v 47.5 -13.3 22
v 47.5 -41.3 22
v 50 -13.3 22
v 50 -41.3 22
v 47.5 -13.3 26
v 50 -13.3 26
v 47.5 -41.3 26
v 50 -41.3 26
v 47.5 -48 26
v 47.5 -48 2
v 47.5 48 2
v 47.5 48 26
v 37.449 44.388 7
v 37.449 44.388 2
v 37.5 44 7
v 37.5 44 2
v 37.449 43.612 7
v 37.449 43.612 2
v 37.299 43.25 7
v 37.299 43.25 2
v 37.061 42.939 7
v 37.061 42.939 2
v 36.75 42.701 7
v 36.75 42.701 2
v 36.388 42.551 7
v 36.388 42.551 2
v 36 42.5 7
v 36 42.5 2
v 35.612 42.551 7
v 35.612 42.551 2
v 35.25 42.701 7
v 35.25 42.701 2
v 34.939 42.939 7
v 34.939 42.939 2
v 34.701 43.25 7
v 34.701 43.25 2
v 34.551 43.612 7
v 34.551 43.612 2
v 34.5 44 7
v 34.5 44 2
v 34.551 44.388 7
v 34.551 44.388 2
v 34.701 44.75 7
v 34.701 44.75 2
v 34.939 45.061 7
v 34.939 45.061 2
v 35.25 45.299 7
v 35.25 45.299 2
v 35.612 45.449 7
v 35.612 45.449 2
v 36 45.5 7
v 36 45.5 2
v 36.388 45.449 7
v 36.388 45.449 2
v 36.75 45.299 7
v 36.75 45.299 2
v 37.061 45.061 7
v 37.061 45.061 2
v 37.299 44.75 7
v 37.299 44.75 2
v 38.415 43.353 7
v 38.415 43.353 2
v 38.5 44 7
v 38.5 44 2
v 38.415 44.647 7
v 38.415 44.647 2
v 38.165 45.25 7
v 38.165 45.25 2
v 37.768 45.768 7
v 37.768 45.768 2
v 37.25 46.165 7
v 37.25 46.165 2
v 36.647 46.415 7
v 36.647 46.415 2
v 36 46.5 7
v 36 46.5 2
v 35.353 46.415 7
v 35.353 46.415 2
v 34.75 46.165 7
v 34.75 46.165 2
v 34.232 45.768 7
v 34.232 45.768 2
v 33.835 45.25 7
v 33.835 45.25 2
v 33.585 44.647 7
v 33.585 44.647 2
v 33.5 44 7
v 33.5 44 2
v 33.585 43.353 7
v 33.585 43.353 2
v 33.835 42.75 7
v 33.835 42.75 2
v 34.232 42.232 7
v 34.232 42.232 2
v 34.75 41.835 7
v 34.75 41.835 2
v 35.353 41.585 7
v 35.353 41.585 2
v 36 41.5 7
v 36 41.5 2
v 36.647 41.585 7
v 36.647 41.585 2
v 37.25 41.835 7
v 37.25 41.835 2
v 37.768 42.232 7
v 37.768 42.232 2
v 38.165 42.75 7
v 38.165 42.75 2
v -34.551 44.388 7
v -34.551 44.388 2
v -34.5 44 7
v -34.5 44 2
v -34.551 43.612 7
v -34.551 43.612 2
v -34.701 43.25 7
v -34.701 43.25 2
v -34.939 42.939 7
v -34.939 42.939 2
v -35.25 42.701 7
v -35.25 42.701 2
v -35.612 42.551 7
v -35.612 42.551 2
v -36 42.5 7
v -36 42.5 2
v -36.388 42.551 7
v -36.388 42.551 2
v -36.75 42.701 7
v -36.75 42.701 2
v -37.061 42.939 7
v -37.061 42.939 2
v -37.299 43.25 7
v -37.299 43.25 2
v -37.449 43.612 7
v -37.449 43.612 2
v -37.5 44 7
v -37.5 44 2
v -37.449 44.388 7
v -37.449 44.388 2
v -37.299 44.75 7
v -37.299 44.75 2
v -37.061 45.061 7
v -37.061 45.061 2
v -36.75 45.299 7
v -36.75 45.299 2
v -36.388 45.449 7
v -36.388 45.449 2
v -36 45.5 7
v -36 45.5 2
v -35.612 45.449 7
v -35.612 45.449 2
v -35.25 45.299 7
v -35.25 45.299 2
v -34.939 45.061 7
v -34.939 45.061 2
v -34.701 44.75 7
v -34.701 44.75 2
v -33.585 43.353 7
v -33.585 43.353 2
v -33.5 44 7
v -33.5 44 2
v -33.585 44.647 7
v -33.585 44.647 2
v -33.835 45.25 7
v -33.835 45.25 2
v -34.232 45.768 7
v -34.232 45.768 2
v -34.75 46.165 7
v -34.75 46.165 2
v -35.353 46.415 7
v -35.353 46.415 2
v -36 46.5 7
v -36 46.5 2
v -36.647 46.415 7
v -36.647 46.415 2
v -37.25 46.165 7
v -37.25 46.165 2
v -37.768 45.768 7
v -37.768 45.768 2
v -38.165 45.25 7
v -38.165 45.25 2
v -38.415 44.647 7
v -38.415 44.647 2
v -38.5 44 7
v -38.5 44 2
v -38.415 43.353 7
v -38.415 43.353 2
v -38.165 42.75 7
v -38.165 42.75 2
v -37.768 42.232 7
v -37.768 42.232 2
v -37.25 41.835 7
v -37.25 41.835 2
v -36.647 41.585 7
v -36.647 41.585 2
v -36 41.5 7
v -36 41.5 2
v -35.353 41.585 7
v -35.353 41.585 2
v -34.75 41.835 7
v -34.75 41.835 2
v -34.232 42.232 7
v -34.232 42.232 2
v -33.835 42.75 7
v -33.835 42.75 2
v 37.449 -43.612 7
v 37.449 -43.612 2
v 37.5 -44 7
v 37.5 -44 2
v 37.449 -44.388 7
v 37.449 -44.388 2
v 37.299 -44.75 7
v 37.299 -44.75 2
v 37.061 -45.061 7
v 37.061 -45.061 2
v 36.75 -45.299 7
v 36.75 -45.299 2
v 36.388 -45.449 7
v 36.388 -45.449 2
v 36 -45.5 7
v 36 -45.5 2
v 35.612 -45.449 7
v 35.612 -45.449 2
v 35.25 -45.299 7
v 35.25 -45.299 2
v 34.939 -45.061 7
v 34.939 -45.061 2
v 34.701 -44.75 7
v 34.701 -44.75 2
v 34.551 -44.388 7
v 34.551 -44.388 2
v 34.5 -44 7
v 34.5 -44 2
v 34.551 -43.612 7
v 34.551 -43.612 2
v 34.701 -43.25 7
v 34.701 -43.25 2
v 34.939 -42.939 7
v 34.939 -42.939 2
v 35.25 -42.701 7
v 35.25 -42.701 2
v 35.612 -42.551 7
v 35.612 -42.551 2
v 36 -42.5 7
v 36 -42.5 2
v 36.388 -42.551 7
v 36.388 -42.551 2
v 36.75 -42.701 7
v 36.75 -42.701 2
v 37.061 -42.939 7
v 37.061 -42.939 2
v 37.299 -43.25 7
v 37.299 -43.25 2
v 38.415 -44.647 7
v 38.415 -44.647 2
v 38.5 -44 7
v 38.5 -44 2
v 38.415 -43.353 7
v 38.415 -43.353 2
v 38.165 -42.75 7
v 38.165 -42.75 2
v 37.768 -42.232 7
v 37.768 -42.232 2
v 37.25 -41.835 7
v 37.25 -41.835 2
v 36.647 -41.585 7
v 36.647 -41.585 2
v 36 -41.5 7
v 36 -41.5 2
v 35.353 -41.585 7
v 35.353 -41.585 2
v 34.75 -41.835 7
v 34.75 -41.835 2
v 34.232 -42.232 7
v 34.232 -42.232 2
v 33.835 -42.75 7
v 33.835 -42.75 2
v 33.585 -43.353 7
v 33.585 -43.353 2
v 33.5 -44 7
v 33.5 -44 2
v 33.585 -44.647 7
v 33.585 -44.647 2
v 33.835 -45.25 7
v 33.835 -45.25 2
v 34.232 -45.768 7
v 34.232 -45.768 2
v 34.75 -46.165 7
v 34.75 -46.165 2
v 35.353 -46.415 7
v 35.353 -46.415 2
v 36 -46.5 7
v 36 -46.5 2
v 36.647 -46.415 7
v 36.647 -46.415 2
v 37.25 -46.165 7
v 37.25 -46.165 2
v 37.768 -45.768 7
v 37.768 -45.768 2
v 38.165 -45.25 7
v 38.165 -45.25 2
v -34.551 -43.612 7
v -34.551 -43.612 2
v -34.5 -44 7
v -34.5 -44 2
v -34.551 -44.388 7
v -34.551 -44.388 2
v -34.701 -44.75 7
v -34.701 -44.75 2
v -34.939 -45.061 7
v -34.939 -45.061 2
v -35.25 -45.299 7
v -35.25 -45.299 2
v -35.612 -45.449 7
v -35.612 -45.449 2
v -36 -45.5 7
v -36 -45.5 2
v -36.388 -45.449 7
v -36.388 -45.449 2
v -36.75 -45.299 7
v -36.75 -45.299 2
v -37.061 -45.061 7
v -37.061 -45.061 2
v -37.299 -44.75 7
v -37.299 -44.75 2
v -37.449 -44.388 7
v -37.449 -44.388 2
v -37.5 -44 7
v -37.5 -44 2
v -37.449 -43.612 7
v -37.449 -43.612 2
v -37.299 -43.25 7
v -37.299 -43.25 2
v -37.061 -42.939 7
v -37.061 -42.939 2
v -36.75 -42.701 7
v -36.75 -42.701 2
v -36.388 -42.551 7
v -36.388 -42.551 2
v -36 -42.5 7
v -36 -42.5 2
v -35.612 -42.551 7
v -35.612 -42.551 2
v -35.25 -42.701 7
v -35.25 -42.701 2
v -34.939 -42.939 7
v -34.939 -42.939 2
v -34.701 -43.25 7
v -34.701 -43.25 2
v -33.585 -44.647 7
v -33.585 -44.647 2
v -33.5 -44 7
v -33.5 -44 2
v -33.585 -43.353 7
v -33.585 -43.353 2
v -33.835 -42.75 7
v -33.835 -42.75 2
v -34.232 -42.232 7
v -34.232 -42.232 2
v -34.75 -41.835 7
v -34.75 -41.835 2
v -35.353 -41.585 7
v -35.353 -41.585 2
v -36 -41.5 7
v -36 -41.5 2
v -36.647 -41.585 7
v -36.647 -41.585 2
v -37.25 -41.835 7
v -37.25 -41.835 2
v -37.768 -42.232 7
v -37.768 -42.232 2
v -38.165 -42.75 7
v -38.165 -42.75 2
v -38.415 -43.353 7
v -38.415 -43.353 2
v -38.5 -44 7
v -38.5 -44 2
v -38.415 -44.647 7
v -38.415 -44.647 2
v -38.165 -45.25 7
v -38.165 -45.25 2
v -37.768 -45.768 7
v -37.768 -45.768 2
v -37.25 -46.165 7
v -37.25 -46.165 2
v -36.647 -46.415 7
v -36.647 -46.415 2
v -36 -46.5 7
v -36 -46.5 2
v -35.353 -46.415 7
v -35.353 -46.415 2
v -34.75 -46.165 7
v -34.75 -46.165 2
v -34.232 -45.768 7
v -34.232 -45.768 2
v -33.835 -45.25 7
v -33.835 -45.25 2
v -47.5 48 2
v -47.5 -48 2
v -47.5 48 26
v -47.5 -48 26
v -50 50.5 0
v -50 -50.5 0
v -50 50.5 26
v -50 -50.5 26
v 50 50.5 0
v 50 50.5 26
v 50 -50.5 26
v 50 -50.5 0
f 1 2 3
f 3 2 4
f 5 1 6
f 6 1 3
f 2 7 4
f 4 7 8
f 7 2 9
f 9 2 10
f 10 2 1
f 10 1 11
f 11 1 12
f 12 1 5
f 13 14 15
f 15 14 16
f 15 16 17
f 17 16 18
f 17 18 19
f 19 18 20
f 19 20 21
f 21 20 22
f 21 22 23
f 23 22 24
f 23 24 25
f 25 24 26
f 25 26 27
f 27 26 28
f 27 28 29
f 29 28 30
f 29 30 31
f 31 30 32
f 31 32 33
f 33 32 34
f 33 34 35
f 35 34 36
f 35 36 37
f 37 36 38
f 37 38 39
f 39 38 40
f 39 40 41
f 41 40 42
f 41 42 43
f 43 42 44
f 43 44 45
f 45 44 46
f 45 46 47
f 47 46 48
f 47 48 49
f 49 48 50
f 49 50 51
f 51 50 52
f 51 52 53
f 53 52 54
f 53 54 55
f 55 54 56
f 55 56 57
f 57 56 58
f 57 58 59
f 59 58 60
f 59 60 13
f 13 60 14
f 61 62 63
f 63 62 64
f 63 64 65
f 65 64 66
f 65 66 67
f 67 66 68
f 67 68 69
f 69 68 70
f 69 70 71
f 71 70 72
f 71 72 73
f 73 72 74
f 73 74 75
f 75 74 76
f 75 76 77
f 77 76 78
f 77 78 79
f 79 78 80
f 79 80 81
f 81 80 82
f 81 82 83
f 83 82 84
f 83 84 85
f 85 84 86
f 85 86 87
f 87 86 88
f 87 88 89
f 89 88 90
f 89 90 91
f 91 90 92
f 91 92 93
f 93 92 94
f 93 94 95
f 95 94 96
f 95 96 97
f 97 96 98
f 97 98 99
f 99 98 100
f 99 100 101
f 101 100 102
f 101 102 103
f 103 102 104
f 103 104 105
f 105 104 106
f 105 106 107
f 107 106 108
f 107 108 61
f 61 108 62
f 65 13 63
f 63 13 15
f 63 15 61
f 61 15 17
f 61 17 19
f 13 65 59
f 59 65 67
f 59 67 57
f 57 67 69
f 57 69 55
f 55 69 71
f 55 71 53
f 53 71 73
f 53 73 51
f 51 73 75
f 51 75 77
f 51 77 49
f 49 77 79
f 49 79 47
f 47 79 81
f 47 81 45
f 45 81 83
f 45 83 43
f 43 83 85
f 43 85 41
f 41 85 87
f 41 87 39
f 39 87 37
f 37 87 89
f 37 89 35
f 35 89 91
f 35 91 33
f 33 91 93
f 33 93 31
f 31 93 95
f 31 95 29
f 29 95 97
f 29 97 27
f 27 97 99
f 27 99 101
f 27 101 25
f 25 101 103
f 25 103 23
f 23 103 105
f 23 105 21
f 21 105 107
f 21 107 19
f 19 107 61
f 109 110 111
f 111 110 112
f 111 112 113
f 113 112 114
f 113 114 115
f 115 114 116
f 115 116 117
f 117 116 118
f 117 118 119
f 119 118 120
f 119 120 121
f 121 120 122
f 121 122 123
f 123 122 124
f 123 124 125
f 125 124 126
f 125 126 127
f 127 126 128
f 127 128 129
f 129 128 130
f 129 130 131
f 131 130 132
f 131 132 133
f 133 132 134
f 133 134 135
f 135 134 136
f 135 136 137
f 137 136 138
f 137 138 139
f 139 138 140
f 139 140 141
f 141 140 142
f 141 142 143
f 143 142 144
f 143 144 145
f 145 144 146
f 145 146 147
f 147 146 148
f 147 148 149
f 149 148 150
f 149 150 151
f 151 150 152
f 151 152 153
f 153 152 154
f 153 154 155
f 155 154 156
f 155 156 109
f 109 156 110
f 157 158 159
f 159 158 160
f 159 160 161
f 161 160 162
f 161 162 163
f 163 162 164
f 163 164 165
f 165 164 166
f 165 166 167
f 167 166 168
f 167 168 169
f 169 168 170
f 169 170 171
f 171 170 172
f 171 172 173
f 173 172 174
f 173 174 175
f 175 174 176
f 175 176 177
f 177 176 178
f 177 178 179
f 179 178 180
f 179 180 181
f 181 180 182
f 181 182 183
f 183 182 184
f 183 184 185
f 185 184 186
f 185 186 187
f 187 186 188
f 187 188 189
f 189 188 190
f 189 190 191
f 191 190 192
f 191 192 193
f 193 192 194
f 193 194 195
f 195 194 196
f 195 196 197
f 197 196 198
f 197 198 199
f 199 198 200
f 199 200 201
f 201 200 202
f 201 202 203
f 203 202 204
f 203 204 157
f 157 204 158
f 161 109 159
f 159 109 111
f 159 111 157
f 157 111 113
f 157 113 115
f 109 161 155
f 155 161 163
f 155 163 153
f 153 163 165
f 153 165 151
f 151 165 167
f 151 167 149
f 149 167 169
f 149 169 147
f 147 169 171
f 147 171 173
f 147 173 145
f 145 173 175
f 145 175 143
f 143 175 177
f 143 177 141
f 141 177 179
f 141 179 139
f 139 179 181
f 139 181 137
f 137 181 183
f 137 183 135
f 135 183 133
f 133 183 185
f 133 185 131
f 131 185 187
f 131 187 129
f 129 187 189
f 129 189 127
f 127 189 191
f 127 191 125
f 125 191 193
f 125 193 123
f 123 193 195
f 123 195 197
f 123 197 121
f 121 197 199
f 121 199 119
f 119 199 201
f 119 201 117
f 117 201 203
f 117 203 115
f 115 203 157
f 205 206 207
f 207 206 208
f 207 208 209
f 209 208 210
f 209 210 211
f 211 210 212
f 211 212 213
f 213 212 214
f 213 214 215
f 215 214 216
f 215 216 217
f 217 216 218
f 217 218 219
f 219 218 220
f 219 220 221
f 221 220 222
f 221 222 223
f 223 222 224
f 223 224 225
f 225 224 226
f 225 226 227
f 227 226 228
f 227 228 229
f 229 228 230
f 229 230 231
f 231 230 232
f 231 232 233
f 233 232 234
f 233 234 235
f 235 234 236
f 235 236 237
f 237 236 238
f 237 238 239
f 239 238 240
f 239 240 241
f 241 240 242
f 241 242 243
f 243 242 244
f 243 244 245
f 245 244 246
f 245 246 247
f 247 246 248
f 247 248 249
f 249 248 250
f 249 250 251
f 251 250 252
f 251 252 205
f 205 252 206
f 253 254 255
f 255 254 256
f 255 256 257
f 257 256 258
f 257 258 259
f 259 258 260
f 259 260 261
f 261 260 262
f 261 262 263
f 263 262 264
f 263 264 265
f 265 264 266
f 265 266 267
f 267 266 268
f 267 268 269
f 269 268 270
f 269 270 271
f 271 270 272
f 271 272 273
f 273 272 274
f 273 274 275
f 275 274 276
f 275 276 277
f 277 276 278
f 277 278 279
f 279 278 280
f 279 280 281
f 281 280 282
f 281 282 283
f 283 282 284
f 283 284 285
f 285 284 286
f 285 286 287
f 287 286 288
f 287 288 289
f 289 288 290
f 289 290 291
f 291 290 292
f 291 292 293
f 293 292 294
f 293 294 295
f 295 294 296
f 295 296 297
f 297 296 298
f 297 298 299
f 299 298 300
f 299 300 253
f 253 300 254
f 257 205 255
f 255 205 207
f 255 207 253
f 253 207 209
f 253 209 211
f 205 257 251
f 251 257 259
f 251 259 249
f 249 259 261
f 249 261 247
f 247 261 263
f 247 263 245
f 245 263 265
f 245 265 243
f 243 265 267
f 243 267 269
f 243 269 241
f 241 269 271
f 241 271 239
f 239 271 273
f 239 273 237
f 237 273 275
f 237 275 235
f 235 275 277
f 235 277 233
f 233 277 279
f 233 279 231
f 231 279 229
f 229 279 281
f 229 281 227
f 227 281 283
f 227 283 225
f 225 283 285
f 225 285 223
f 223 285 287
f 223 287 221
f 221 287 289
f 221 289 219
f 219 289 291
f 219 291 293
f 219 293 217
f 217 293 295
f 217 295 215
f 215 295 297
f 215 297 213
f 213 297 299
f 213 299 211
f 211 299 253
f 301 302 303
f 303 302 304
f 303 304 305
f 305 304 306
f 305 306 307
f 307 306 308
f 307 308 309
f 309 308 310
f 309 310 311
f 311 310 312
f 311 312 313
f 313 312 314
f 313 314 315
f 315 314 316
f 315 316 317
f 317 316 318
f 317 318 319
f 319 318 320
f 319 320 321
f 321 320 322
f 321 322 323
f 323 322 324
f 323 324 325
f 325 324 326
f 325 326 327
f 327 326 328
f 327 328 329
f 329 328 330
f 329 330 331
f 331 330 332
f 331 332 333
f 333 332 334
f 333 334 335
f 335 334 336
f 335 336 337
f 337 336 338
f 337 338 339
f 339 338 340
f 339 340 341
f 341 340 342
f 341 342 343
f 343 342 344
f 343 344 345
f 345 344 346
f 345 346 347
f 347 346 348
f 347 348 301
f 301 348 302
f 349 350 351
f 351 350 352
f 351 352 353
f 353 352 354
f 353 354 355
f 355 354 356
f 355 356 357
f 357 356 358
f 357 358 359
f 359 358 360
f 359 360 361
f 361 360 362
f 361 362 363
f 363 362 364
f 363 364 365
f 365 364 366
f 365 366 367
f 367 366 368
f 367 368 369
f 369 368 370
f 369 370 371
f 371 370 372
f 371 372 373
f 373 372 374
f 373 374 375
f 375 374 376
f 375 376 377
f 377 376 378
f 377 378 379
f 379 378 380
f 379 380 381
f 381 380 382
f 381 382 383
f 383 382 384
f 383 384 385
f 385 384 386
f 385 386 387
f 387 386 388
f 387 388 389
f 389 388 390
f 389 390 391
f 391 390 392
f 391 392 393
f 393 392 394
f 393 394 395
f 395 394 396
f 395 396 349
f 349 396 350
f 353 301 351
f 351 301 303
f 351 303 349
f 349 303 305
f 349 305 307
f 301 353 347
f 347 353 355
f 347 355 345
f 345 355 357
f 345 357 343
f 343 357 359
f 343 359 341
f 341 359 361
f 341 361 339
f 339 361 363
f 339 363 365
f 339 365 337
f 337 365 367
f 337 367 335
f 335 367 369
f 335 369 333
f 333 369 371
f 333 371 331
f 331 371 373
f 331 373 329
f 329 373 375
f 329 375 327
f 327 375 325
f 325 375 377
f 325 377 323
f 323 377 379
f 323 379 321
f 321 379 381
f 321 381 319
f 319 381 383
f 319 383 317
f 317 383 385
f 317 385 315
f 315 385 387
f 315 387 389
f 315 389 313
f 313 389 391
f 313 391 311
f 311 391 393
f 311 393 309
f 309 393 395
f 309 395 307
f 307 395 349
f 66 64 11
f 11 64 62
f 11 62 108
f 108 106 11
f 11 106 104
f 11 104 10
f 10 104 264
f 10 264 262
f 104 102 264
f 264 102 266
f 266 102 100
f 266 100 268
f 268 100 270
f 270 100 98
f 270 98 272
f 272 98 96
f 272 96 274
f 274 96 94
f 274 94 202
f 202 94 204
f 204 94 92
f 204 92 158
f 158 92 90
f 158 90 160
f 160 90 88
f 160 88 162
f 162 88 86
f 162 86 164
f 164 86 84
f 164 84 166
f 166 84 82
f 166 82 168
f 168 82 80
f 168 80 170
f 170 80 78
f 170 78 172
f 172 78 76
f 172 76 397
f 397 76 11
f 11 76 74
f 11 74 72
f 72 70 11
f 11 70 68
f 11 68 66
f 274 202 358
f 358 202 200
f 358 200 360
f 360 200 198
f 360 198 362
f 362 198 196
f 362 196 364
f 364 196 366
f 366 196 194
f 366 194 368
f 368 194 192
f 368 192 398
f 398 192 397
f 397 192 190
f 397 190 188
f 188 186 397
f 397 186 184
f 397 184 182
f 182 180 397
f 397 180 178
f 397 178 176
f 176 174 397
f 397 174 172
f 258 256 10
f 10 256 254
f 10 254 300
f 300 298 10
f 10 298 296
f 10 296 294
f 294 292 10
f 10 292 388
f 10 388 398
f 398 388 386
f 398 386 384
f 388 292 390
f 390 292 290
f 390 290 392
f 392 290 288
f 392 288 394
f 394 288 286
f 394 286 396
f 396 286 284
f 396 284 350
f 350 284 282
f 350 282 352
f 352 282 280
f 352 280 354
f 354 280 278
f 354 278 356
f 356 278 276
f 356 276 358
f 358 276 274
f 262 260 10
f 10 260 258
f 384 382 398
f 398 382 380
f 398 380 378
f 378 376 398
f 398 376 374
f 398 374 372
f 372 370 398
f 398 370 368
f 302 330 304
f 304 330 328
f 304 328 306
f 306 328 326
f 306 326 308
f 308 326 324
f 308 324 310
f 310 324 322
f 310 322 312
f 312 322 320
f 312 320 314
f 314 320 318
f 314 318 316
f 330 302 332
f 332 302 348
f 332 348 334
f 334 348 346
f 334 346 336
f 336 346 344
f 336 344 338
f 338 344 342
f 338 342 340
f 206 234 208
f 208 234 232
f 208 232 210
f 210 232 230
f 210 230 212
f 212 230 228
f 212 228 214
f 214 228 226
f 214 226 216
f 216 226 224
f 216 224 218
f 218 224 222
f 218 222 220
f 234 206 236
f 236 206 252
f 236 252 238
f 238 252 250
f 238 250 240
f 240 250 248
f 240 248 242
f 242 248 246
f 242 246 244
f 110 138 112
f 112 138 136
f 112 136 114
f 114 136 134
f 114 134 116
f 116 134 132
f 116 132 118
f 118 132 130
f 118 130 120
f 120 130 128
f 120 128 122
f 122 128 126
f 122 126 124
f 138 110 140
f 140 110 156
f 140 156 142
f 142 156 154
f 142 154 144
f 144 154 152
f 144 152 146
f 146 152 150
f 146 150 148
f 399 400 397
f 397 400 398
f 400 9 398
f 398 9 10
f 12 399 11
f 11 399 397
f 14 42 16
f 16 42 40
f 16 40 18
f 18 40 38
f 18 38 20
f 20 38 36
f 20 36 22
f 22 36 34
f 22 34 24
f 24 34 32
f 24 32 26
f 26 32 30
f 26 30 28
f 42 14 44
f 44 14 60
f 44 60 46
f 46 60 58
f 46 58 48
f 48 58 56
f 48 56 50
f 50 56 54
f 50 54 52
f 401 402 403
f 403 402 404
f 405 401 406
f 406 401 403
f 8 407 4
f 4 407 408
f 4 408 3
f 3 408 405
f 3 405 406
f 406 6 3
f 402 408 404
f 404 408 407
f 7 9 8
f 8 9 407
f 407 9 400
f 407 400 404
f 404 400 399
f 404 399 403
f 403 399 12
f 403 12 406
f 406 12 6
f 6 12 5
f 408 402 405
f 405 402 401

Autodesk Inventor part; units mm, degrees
ref_plane "YZ Plane" through (0, 0, 0) normal (1, 0, 0) x (0, 1, 0)
ref_plane "XZ Plane" through (0, 0, 0) normal (0, 1, 0) x (-1, 0, 0)
ref_plane "XY Plane" through (0, 0, 0) normal (0, 0, 1) x (1, 0, 0)
sketch "Esboço1" plane through (0, 0, 0) normal (0, 0, 1) x (1, 0, 0)
  line L0 (-50, 50.5) -> (50, 50.5)
  line L1 (50, 50.5) -> (50, -50.5)
  line L2 (50, -50.5) -> (-50, -50.5)
  line L3 (-50, -50.5) -> (-50, 50.5)
  line L4 (-50, 50.5) -> (50, -50.5) construction
  line L5 (50, 50.5) -> (-50, -50.5) construction
  point P0 (0, 0)
  dimension "d0" = 100
  dimension "d1" = 101
extrude "Base" add sketch "Esboço1" along normal blind 26
sketch "Esboço2" plane through (0, 0, 26) normal (0, 0, 1) x (1, 0, 0)
  line L0 (50, 50.5) -> (-50, 50.5) projected
  line L1 (-50, -50.5) -> (50, -50.5) projected
  line L2 (-50, 50.5) -> (50, 50.5)
  line L3 (50, 50.5) -> (50, -50.5)
  line L4 (50, -50.5) -> (-50, -50.5)
  line L5 (-50, -50.5) -> (-50, 50.5)
  line L6 (47.5, -48) -> (47.5, 48)
  line L7 (47.5, 48) -> (-47.5, 48)
  line L8 (-47.5, 48) -> (-47.5, -48)
  line L9 (-47.5, -48) -> (47.5, -48)
  point P0 (0, 0)
  dimension "d4" = 2.5
extrude "Área" cut sketch "Esboço2" against normal blind 24 contours L9 L8 L7 L6
sketch "Esboço3" plane through (0, 0, 2) normal (0, 0, 1) x (1, 0, 0)
  circle A0 centre (-36, -44) radius 1.5
  line L0 (-50, 50.5) -> (-50, -50.5) projected
  line L1 (-50, -50.5) -> (50, -50.5) projected
  line L2 (-47.5, -48) -> (-47.5, 48) projected
  line L3 (47.5, 48) -> (47.5, -48) projected
  circle A1 centre (-36, 44) radius 1.5
  circle A2 centre (36, -44) radius 1.5
  circle A3 centre (36, 44) radius 1.5
  circle A4 centre (-36, -44) radius 2.5
  line L4 (47.5, -48) -> (-47.5, -48) projected
  line L5 (-47.5, 48) -> (47.5, 48) projected
  circle A5 centre (-36, 44) radius 2.5
  circle A6 centre (36, -44) radius 2.5
  circle A7 centre (36, 44) radius 2.5
  dimension "d11" = 3
  dimension "d12" = 14
  dimension "d13" = 6.5
  dimension "d14" = 5
extrude "Extrusão3" add sketch "Esboço3" along normal blind 5 contours A4 | A5 | A6 | A7
sketch "Esboço4" plane through (50, -50.5, 0) normal (1, 0, 0) x (0, 0, -1)
  line L0 (-26, 9.2) -> (-22, 9.2)
  line L1 (-22, 9.2) -> (-22, 37.2)
  line L2 (-22, 37.2) -> (-26, 37.2)
  line L3 (-26, 37.2) -> (-26, 9.2)
  point P0 (0, 50.5)
  dimension "d17" = 4
  dimension "d18" = 28
extrude "Extrusão4" cut sketch "Esboço4" against normal up to surface (2.5 mm away)
properties part number "Base ESP_3DPrint"
